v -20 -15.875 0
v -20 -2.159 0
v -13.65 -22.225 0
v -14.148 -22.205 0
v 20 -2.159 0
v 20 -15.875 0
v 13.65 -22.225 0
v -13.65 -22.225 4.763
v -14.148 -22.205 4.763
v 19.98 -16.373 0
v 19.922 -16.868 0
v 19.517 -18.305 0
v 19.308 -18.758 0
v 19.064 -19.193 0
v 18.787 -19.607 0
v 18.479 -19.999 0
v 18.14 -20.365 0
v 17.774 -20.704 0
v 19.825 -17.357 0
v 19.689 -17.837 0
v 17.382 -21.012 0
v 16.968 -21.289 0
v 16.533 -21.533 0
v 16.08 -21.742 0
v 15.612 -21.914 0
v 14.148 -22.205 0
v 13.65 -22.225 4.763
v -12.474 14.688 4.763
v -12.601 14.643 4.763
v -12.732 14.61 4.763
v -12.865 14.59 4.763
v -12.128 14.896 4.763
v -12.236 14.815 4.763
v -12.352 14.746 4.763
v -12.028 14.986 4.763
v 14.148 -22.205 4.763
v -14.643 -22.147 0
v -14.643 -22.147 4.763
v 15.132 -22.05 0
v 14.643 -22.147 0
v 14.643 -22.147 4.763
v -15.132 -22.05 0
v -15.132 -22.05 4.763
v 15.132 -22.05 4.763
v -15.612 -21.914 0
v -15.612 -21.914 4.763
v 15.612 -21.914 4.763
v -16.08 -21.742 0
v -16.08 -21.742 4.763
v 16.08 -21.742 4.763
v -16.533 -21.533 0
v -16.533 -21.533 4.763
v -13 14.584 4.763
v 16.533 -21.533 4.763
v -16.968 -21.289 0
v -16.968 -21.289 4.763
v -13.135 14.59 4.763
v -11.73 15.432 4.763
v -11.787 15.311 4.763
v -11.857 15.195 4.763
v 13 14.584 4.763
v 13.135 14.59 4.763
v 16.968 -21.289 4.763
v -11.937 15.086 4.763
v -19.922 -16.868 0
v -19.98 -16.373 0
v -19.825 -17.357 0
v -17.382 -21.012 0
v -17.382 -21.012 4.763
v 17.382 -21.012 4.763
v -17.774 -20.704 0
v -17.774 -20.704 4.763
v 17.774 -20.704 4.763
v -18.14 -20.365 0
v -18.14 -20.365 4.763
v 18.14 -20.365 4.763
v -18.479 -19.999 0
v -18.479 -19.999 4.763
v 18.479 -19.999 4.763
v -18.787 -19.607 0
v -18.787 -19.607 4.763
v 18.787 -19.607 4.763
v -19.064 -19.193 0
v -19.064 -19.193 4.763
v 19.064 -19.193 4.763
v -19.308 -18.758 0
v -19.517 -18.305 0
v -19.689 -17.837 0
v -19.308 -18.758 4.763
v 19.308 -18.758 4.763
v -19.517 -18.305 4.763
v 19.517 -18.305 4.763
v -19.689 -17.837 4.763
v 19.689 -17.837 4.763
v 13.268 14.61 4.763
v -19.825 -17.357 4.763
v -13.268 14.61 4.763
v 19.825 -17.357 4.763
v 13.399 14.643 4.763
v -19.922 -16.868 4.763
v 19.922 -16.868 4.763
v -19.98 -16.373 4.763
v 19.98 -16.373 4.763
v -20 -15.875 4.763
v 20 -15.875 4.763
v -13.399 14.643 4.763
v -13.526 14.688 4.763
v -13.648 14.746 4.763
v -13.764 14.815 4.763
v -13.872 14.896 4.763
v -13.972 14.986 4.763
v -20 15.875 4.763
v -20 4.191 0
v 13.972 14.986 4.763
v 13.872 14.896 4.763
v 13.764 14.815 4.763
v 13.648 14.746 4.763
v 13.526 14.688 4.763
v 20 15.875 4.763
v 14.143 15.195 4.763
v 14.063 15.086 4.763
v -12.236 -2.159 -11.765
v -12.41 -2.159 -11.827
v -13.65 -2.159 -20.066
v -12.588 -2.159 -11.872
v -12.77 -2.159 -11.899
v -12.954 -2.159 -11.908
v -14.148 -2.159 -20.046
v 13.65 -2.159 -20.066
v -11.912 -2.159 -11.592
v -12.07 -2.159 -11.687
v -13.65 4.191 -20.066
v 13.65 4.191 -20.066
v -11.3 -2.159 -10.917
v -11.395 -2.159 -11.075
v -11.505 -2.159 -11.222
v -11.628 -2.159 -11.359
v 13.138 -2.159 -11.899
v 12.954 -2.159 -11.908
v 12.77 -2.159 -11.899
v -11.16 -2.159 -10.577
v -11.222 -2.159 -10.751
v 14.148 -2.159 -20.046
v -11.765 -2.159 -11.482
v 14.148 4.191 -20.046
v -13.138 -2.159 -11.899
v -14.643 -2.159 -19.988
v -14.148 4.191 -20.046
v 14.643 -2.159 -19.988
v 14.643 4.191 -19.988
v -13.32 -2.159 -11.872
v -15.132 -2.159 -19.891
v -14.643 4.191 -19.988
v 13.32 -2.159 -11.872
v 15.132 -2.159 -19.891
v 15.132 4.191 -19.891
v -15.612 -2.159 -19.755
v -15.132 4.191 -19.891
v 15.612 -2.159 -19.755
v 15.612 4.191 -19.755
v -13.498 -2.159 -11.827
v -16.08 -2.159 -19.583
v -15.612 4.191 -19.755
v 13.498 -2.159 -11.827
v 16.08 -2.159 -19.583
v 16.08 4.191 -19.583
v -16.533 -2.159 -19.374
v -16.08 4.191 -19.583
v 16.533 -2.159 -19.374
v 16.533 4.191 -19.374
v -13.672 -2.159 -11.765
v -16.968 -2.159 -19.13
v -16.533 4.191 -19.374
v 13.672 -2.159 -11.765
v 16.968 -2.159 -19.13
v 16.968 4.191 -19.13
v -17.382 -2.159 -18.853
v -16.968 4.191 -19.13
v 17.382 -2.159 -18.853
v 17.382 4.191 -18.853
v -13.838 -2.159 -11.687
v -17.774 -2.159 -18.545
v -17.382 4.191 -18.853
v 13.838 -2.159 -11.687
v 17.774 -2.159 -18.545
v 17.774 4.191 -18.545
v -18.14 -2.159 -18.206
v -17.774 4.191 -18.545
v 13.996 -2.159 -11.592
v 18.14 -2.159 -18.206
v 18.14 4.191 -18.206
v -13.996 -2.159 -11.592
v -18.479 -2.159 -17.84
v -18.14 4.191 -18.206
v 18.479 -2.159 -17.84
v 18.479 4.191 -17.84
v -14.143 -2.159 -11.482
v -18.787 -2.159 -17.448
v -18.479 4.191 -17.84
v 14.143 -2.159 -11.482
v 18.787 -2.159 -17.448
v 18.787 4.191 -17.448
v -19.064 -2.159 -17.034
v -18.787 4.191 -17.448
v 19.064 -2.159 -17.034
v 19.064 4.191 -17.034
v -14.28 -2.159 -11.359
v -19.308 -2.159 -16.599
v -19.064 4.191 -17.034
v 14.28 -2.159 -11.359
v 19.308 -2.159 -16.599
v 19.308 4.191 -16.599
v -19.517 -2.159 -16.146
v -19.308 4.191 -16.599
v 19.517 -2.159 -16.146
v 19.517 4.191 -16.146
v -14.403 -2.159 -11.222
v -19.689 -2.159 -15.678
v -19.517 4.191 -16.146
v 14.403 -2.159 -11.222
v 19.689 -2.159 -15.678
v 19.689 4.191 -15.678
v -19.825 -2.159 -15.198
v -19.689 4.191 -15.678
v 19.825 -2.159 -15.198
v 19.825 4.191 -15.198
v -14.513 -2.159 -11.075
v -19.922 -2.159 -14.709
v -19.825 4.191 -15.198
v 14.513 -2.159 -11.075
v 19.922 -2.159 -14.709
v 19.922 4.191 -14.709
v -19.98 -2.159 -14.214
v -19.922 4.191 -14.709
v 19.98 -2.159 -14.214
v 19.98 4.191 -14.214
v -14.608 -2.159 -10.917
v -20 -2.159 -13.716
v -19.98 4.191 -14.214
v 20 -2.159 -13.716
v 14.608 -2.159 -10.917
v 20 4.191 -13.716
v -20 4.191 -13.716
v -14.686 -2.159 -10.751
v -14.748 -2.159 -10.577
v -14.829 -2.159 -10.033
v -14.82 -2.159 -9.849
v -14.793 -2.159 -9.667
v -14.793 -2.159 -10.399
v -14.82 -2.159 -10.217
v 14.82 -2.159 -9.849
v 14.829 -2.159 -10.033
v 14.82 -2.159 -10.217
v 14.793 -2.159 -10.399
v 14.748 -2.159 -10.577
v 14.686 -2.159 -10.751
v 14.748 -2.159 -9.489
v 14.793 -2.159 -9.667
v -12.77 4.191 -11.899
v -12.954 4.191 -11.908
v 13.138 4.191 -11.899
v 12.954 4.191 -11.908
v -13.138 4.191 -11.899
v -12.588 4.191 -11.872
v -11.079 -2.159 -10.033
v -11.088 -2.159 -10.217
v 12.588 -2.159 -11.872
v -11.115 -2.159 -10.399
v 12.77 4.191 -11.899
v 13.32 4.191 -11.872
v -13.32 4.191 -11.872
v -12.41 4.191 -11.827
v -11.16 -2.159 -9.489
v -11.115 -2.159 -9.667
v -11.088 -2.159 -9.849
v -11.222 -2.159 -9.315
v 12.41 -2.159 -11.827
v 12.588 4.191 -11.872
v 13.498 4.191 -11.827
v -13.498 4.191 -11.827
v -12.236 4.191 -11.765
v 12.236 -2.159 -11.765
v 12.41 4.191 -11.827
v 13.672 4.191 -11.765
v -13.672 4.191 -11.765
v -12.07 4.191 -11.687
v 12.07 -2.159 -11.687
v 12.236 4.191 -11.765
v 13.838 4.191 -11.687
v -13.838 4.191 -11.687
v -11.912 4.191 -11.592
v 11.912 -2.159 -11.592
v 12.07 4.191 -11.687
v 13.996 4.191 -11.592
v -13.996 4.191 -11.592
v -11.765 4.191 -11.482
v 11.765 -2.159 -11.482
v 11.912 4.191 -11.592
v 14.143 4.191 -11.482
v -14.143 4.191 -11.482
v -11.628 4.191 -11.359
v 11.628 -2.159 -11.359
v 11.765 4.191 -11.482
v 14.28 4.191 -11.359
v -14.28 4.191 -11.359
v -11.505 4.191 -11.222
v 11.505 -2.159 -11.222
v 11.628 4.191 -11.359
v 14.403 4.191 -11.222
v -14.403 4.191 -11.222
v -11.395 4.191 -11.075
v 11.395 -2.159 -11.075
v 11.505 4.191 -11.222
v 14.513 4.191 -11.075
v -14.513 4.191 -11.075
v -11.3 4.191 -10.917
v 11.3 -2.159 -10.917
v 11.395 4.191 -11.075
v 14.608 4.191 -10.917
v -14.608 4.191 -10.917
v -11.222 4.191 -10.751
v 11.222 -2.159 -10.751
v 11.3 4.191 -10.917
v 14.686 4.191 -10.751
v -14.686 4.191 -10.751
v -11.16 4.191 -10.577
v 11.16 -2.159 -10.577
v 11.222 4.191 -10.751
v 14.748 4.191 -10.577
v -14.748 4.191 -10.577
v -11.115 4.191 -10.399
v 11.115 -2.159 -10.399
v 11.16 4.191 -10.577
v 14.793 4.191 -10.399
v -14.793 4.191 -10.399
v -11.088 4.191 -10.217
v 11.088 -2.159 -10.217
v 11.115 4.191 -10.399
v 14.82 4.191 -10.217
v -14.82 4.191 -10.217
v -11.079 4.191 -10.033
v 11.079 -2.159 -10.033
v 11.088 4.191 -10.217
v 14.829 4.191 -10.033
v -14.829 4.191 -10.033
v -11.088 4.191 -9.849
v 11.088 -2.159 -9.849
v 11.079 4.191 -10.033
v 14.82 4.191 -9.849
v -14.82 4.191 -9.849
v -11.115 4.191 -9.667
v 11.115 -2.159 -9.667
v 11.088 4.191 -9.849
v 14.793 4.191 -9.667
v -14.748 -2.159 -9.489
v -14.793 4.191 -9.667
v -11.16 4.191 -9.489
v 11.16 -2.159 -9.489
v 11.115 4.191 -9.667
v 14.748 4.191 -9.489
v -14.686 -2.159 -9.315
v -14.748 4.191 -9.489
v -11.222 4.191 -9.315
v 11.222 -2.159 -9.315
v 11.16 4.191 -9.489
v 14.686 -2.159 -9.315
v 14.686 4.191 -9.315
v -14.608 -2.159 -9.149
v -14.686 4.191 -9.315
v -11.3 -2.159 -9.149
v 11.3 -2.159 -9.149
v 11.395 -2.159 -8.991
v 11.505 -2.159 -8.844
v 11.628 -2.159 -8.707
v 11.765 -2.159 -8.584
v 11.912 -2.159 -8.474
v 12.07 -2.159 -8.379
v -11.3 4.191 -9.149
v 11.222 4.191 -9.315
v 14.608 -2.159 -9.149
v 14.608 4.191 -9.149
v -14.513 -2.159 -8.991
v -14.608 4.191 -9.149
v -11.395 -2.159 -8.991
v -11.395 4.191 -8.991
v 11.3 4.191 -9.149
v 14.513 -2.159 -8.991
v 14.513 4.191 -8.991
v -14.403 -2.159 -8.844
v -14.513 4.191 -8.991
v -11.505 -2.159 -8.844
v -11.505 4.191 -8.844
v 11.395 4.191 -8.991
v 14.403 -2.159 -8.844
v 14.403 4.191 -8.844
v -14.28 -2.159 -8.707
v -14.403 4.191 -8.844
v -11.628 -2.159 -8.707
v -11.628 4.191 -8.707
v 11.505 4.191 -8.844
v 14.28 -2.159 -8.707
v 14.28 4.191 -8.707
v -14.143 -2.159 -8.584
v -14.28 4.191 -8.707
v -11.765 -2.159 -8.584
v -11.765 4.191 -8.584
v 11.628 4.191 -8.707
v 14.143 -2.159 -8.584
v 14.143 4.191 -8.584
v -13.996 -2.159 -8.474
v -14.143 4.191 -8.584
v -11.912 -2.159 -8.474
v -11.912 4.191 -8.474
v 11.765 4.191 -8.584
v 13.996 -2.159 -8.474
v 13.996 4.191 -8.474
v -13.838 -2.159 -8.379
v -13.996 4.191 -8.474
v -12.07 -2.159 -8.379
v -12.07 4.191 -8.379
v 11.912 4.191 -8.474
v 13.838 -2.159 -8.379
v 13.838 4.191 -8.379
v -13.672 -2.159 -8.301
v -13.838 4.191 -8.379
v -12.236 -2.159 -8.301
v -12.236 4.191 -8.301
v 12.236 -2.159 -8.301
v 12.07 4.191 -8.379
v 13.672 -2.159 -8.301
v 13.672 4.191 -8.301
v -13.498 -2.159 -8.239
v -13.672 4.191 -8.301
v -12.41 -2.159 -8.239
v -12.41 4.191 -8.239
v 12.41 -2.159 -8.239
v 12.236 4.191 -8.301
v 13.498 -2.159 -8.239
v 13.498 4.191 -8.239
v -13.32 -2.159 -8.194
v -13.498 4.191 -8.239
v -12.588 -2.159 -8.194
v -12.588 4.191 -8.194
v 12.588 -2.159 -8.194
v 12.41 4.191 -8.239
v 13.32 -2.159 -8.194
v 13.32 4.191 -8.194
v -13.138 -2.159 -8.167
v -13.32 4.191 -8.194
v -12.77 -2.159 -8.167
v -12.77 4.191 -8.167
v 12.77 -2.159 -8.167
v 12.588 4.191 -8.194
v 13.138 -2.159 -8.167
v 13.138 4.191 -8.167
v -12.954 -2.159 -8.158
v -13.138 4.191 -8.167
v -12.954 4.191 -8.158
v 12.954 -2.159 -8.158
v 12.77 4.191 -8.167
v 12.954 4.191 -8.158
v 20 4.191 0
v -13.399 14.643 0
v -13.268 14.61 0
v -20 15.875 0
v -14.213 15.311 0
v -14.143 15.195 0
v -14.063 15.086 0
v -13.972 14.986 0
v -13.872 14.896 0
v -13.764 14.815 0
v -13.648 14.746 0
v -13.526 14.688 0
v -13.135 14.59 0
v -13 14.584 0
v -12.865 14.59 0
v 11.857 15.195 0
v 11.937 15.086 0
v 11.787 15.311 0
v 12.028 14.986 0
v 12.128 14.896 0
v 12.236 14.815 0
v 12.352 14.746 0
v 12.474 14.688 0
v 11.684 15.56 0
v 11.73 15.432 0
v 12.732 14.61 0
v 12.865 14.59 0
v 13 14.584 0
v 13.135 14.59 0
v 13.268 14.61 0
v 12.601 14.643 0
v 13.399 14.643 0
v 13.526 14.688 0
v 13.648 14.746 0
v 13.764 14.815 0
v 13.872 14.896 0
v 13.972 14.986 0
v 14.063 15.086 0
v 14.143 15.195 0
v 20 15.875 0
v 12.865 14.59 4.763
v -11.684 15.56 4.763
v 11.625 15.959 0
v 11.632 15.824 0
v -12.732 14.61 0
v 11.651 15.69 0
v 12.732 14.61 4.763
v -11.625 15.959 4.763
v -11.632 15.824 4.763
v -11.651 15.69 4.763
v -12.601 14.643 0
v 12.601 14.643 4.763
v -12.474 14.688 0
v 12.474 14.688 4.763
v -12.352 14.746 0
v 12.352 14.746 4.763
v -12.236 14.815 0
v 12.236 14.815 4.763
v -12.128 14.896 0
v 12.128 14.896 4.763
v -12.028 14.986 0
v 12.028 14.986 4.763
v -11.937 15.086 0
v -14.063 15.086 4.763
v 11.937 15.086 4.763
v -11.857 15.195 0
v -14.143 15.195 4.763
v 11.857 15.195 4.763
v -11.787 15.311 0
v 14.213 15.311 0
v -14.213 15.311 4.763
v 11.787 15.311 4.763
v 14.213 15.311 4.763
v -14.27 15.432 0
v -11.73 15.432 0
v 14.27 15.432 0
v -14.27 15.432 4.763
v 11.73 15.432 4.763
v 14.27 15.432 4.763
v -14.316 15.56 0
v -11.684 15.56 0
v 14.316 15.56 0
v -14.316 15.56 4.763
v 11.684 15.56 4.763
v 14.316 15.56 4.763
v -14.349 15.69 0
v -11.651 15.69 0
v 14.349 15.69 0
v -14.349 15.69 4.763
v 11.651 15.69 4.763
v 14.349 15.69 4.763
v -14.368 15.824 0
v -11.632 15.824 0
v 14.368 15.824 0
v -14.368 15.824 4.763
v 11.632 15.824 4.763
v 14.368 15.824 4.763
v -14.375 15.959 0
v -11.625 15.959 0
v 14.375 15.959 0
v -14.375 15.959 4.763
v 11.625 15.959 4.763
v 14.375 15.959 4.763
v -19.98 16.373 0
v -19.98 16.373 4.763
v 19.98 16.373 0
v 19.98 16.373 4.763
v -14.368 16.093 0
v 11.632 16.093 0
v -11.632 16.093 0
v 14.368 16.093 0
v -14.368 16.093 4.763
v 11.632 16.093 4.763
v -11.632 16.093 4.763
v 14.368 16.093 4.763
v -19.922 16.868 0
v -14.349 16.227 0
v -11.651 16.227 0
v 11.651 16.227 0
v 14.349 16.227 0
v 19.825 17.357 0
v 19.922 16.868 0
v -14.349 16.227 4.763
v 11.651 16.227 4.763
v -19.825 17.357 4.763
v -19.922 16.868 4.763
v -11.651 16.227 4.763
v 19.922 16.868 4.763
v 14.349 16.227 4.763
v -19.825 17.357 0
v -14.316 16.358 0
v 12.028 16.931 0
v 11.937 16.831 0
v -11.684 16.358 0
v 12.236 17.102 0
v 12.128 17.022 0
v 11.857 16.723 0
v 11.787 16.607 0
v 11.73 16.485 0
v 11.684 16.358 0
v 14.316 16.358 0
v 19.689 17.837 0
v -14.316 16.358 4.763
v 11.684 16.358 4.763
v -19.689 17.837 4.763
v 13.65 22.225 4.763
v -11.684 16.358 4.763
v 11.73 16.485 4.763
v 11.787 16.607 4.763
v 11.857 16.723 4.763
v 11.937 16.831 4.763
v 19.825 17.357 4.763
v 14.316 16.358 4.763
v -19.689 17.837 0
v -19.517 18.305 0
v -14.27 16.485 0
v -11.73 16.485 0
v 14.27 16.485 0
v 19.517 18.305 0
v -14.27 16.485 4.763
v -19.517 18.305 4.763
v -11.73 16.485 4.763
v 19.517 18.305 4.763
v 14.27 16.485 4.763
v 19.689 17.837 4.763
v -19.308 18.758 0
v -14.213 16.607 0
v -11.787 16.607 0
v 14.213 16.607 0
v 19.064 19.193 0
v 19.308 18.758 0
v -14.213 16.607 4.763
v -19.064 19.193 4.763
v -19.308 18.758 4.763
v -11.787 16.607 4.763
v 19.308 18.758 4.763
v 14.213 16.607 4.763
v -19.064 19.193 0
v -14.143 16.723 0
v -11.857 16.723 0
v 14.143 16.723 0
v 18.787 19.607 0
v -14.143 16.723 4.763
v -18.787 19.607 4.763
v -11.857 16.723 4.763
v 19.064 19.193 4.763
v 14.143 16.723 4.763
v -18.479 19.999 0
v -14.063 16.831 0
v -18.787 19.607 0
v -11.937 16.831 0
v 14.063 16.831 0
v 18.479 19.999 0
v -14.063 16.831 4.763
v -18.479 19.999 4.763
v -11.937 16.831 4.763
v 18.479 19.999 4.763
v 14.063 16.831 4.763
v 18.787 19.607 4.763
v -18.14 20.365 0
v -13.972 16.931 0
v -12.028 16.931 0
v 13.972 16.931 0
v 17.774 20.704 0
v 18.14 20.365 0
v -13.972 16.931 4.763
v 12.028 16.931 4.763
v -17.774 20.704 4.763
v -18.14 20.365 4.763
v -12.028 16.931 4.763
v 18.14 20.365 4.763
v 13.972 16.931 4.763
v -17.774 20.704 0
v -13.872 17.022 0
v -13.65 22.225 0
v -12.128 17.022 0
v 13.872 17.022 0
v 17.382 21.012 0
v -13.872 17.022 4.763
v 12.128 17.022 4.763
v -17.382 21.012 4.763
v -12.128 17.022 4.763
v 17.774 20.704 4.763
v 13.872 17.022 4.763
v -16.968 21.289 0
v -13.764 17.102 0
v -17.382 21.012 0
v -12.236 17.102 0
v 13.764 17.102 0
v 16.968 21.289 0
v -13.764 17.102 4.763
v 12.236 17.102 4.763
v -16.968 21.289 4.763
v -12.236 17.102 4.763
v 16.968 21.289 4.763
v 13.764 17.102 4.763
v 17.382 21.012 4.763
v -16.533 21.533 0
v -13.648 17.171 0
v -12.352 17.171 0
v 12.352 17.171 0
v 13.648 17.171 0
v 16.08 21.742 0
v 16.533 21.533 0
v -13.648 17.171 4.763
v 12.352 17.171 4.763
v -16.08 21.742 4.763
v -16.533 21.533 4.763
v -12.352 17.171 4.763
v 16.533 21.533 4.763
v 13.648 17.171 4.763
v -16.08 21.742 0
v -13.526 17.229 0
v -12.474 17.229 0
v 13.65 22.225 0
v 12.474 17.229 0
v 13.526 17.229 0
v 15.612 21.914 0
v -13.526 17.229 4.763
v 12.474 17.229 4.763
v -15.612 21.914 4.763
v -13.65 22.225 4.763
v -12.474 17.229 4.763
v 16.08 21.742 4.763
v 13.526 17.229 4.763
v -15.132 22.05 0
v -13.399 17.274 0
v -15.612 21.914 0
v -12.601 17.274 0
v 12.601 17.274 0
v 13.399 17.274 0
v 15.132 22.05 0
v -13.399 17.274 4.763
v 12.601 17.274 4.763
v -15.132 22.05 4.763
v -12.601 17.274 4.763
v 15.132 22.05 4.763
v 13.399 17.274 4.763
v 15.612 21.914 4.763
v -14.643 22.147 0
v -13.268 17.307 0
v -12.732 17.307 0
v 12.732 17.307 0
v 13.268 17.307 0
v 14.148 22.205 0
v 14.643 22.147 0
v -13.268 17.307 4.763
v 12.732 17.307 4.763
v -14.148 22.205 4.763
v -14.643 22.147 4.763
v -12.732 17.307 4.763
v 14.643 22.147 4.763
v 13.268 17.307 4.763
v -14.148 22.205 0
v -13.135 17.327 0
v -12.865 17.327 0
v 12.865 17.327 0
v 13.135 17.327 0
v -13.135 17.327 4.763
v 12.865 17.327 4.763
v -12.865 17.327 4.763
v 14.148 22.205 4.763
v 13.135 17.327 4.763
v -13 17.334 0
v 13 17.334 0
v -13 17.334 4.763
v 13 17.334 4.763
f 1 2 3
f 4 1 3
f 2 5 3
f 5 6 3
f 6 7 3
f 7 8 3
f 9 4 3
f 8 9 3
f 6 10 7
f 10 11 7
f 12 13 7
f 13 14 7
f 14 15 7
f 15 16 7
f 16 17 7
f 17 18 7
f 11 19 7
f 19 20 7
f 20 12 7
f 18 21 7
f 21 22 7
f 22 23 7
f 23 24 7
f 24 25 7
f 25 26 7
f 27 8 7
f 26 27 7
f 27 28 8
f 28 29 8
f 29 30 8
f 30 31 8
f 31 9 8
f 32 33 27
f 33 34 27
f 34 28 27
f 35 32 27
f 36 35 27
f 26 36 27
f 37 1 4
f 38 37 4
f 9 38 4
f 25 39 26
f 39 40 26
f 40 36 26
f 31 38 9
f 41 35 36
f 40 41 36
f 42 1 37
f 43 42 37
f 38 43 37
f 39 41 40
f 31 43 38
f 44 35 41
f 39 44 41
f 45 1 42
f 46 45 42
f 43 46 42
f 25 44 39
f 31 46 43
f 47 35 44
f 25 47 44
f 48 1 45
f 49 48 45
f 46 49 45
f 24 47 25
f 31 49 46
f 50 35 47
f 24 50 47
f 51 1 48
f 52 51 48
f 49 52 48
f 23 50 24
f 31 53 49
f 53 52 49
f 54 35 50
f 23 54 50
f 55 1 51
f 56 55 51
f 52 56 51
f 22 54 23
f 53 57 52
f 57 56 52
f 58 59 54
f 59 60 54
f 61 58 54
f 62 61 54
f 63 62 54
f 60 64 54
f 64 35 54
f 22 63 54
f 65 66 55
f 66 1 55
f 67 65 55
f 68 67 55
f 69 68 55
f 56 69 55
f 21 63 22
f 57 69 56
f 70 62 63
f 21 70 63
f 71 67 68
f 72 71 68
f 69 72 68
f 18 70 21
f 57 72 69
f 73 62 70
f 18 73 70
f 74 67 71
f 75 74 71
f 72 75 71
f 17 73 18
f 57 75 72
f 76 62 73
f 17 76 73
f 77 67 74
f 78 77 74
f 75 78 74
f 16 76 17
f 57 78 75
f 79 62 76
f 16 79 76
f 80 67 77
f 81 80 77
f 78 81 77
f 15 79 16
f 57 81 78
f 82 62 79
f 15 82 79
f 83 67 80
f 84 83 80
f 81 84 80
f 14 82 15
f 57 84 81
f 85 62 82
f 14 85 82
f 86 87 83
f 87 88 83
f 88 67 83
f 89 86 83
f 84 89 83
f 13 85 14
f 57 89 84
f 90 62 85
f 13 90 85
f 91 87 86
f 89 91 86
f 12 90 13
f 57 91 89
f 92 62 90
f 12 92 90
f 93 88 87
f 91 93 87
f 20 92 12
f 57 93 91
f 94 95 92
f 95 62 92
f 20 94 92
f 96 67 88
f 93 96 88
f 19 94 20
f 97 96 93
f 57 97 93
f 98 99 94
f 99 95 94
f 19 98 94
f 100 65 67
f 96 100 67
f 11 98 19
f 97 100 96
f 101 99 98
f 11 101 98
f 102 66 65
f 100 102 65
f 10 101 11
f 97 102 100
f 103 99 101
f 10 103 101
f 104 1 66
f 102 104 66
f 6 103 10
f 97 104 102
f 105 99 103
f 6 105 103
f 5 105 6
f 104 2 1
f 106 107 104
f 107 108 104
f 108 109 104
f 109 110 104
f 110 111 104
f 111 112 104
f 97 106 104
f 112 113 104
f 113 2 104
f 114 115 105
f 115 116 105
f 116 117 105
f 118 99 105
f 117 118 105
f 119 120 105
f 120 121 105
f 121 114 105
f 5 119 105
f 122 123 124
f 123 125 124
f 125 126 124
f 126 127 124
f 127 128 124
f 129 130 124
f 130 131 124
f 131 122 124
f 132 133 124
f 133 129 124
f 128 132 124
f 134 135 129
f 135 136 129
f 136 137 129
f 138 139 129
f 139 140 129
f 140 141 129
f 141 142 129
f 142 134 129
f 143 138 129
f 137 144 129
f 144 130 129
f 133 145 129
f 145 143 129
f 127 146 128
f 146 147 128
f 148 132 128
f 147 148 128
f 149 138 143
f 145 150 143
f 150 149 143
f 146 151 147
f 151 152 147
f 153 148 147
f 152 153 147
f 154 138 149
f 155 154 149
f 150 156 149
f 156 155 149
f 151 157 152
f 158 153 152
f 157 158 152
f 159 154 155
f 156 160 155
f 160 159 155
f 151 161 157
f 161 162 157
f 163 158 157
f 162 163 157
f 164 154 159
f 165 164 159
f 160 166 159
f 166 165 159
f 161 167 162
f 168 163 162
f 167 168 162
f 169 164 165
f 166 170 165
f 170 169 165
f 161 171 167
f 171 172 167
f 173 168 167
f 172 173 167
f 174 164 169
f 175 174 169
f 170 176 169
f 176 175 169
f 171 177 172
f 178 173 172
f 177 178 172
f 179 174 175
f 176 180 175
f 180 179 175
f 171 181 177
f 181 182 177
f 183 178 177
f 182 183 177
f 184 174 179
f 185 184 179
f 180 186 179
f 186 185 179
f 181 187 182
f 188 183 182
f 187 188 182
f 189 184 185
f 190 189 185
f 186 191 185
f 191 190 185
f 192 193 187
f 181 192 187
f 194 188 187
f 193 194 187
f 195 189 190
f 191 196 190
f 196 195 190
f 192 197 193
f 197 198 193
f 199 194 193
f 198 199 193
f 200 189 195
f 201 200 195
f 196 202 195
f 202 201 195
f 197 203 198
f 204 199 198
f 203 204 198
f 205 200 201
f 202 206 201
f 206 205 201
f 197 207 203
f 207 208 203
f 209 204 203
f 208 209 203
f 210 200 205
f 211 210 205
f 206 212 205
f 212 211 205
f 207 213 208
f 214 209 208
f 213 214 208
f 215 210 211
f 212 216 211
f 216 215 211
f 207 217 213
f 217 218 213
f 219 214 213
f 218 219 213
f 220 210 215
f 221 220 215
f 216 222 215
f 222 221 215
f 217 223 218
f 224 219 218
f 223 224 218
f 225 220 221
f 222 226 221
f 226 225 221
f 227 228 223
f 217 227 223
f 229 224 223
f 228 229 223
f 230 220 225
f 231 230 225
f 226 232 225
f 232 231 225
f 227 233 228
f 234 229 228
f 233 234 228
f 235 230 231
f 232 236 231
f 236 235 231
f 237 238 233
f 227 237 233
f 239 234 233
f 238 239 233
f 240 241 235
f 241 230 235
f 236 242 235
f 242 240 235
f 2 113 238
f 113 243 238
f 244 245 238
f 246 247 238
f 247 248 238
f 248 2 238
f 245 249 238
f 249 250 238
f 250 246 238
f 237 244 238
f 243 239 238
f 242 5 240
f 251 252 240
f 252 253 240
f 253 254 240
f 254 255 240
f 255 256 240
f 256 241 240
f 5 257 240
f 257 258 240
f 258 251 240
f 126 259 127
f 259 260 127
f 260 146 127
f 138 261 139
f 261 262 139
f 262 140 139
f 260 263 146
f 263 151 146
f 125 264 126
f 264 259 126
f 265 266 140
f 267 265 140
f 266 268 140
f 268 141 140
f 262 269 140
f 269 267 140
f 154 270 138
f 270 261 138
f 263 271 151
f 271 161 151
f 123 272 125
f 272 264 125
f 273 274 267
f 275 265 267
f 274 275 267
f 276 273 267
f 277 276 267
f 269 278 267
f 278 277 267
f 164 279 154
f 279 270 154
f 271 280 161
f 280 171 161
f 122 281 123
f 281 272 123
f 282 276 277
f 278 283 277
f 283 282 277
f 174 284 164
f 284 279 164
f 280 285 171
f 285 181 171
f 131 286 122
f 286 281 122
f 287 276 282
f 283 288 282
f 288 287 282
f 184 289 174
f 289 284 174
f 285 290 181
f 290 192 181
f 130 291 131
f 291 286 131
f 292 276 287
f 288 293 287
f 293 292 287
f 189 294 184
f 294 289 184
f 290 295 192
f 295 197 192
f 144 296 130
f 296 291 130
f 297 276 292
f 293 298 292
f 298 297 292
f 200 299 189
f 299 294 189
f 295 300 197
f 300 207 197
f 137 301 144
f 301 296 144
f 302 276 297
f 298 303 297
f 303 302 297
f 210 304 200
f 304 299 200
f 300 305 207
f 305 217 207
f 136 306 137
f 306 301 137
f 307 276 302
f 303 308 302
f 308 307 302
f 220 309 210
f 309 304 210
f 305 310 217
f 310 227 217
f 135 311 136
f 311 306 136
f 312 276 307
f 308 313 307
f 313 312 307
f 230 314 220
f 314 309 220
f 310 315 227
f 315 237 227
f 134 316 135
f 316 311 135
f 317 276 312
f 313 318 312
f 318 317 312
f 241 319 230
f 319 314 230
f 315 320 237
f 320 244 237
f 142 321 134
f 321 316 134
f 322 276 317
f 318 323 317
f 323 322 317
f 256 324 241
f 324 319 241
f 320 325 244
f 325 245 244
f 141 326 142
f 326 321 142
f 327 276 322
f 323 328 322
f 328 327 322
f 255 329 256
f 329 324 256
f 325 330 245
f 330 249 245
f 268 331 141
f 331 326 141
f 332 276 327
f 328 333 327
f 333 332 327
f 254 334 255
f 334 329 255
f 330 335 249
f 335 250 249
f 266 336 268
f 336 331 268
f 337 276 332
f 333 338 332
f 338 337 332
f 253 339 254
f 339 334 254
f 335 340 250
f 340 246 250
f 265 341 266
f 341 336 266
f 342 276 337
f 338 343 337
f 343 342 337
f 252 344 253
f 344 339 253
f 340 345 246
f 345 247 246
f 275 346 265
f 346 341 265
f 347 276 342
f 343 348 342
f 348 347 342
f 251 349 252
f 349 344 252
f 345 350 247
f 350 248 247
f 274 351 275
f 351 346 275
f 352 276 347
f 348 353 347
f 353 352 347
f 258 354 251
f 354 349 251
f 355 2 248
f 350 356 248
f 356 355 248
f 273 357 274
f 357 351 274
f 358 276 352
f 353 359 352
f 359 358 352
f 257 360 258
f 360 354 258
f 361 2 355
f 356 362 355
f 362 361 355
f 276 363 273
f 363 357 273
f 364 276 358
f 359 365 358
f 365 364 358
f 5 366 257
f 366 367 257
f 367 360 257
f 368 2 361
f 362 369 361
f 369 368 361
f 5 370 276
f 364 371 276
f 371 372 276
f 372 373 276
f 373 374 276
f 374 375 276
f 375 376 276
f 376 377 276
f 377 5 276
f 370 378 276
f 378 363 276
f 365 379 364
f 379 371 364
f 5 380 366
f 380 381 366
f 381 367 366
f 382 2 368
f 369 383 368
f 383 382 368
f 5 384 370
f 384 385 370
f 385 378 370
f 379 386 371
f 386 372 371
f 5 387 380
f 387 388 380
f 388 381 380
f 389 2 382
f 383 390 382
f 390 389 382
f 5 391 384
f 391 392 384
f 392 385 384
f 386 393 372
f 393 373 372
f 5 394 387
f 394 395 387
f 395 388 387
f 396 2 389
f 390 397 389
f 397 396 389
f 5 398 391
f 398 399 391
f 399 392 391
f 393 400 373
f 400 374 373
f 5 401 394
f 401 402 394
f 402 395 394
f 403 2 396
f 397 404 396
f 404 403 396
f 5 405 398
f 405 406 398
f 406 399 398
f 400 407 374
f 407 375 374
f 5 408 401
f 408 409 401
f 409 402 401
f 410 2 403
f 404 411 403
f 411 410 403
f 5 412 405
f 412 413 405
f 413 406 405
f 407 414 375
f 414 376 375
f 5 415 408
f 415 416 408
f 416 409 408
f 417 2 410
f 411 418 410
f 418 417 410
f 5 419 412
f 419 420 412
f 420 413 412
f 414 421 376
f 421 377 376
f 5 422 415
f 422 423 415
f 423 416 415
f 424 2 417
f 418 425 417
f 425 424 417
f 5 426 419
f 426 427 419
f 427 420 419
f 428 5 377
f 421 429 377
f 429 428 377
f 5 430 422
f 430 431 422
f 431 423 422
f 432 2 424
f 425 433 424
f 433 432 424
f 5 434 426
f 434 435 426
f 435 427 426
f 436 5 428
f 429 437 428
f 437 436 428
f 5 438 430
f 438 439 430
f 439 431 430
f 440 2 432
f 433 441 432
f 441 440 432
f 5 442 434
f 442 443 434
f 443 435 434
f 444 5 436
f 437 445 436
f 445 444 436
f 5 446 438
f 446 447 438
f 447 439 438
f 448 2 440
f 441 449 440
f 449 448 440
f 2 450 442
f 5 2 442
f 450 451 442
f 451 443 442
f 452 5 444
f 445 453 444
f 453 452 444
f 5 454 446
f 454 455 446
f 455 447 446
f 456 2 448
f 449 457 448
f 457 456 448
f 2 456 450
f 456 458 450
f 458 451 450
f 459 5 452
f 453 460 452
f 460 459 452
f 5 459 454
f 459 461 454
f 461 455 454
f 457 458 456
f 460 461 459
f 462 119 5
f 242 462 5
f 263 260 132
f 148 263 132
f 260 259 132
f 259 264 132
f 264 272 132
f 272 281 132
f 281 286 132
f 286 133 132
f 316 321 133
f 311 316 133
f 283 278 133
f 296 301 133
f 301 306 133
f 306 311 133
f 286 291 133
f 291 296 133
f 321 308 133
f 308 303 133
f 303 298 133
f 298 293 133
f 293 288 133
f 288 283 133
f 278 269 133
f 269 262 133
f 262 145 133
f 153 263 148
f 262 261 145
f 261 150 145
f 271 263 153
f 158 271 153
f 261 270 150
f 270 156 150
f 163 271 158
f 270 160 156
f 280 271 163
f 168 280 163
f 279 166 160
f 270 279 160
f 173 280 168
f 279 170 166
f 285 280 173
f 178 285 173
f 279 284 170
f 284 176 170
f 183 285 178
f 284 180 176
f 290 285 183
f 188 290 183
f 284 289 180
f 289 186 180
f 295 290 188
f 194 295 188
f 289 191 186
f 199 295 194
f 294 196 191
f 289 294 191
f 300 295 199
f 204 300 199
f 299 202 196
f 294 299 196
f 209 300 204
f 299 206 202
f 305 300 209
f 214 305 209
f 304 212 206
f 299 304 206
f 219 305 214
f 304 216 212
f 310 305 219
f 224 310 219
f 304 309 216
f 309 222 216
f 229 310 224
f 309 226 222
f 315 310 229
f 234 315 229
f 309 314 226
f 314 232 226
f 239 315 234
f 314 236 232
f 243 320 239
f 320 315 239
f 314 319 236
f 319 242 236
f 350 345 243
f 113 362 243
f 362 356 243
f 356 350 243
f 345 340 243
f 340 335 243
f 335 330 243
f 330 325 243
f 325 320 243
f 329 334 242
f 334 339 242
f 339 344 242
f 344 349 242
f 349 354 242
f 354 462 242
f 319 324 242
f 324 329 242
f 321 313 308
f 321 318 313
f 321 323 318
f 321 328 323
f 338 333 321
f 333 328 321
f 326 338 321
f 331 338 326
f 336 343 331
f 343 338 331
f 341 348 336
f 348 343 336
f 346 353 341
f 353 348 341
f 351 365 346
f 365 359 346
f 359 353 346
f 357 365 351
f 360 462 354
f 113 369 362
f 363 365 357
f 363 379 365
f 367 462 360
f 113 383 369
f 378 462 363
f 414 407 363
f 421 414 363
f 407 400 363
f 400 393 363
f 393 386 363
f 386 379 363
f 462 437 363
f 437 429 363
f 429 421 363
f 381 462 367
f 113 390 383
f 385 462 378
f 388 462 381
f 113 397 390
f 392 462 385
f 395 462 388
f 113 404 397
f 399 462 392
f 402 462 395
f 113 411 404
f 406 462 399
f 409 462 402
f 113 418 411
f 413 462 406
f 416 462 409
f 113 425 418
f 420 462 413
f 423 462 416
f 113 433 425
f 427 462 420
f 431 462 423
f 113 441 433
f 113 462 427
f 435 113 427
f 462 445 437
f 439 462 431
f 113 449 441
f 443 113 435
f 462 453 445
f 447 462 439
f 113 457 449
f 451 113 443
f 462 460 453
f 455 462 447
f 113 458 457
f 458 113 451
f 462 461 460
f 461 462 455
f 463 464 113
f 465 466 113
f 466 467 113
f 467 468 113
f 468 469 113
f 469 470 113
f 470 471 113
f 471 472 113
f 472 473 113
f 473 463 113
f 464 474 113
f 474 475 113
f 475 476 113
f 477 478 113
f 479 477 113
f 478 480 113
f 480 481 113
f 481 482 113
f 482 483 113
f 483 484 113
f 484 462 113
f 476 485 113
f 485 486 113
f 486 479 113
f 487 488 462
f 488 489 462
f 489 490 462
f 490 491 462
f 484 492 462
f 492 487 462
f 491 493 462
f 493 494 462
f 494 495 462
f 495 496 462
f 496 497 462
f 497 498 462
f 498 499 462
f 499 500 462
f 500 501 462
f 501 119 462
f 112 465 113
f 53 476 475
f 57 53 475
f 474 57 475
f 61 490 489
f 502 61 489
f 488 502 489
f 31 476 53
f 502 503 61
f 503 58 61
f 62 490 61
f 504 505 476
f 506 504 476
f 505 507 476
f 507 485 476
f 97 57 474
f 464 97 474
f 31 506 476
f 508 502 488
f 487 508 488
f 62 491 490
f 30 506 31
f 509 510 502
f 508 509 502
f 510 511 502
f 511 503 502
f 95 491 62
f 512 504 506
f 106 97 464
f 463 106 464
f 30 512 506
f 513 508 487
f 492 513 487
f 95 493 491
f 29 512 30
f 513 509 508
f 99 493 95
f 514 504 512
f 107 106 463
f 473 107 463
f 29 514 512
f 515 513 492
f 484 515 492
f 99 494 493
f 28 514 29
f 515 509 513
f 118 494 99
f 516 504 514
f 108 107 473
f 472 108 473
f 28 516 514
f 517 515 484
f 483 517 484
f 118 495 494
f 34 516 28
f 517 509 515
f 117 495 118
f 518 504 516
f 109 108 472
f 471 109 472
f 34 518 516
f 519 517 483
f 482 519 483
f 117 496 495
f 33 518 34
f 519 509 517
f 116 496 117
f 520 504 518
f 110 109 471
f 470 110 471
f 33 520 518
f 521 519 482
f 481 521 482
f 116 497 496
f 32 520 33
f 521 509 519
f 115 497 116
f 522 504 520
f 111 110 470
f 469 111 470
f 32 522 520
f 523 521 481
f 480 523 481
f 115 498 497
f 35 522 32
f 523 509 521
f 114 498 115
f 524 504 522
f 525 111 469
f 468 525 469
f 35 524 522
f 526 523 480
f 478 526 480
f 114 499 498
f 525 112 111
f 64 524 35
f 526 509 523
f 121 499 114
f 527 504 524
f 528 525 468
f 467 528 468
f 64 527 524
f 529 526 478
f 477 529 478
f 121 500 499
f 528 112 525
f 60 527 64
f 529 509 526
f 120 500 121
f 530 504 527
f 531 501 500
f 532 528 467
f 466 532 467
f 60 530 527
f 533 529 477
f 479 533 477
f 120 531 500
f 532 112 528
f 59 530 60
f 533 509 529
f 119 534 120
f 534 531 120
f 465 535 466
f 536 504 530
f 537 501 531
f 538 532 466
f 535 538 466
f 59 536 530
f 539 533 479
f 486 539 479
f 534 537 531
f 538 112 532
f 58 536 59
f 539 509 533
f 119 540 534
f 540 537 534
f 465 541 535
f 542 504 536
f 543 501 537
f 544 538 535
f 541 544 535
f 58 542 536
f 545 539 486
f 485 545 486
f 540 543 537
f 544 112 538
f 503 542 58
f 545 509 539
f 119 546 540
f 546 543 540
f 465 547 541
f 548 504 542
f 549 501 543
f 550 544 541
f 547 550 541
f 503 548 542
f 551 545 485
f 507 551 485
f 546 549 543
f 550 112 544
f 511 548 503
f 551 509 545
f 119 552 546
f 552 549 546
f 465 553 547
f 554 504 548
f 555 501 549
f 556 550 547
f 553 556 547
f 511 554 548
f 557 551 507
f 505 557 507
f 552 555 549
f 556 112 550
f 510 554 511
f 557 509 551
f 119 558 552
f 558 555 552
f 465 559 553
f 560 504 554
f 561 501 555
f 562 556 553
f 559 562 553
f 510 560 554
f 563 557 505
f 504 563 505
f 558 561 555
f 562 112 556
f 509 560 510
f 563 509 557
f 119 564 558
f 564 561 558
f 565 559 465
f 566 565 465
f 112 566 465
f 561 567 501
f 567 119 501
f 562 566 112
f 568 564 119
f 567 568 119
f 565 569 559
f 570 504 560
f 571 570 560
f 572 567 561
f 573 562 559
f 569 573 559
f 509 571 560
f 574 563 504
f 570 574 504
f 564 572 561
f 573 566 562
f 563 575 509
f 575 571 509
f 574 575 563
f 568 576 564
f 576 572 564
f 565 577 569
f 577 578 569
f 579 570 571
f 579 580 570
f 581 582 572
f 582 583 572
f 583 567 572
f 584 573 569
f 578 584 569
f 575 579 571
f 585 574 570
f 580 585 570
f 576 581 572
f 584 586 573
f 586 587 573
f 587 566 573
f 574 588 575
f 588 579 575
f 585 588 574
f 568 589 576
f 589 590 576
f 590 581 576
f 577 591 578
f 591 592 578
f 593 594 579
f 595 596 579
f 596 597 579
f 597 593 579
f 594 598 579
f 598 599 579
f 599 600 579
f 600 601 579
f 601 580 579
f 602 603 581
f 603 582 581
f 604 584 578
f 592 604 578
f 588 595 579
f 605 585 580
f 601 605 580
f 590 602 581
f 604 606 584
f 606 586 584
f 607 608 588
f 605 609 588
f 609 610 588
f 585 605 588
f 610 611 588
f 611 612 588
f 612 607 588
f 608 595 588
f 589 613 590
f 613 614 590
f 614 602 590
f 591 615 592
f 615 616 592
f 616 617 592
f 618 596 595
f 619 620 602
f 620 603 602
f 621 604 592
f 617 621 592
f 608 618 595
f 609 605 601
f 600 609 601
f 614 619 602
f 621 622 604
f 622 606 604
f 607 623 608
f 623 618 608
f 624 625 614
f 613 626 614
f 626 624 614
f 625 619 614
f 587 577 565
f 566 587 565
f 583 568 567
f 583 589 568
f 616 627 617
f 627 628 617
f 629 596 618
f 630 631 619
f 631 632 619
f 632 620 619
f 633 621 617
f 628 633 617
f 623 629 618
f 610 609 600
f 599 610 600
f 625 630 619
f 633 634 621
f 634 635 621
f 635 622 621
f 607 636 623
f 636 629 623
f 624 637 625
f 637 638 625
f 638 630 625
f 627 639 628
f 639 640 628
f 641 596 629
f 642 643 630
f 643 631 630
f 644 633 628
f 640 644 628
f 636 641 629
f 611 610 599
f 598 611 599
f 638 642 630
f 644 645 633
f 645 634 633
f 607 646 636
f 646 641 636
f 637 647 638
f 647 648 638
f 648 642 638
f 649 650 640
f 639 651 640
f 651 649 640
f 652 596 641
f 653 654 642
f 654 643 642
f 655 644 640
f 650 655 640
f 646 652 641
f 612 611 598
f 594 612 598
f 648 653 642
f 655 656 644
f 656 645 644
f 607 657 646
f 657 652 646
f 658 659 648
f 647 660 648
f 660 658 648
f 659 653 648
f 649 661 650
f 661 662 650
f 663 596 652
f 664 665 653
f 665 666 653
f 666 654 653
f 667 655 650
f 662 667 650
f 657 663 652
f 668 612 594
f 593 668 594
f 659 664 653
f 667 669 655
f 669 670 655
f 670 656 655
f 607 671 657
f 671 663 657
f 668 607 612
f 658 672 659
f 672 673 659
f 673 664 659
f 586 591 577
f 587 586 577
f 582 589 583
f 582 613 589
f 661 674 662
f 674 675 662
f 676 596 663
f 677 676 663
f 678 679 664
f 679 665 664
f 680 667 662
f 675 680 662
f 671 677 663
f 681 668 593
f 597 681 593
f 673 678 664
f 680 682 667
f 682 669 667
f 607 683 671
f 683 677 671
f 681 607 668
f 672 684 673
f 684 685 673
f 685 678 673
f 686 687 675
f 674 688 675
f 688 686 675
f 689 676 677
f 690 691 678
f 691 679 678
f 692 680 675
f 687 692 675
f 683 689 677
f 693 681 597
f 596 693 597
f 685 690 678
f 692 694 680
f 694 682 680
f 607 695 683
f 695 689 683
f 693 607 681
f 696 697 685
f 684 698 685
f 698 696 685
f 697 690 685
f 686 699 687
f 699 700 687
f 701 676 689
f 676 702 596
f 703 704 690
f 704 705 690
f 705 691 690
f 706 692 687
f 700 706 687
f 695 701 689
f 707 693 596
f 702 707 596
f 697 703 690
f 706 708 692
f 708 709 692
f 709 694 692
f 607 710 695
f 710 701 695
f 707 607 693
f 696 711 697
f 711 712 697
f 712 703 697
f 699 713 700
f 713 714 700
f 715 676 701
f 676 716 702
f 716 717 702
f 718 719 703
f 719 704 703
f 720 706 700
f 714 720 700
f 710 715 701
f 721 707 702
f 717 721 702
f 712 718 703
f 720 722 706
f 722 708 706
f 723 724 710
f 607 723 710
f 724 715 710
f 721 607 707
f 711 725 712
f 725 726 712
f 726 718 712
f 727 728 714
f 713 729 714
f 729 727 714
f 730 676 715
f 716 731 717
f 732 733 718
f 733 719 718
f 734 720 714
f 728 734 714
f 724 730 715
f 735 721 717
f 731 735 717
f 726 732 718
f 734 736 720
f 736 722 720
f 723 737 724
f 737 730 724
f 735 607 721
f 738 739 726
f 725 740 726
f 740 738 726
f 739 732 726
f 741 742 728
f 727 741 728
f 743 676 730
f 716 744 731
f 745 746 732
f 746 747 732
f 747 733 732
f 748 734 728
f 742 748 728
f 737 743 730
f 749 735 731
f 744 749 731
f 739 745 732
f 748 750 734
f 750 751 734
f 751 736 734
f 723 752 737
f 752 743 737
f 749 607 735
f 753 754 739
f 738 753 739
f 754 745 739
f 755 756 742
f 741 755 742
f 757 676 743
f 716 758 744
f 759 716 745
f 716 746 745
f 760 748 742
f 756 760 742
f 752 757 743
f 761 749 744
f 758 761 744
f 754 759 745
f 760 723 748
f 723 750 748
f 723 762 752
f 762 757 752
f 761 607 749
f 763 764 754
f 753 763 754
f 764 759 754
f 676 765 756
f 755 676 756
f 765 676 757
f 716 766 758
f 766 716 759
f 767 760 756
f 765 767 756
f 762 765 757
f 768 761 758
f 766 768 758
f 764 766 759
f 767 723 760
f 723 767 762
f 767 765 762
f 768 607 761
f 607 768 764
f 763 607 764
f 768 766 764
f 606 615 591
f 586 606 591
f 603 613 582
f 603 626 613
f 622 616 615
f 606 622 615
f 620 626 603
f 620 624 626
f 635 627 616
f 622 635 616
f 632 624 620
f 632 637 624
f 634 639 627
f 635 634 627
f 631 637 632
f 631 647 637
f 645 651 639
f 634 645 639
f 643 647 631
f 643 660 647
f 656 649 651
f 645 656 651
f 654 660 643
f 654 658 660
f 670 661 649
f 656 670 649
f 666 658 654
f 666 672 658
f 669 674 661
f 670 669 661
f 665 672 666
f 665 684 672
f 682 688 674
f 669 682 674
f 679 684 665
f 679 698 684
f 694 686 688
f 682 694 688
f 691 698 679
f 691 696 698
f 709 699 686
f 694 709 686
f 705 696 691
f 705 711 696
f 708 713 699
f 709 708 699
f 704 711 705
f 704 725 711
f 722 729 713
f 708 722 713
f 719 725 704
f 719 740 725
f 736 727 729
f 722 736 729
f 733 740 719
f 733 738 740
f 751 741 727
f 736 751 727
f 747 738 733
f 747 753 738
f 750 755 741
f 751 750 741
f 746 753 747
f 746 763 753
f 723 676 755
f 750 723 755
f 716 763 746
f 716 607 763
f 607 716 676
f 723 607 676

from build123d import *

# Parameters (mm, degrees)
SKETCH1_W           = 40
SKETCH1_H           = 44.45
SKETCH1_R           = 1.375
BOSS_EXTRUDE1_DEPTH = 4.7625
SKETCH2_W           = 40
SKETCH2_H           = 6.35
BOSS_EXTRUDE2_DEPTH = 20.066
SKETCH3_R           = 1.875
CUT_EXTRUDE1_DEPTH  = 27.416
FILLET1_R           = 6.35


with BuildPart() as part:
    # Sketch1 → Boss-Extrude1 (new body)
    with BuildSketch(Plane.XY):
        Rectangle(SKETCH1_W, SKETCH1_H)
        with Locations((-13, 15.958682008)):
            Circle(SKETCH1_R, mode=Mode.SUBTRACT)
        with Locations((13, 15.958682008)):
            Circle(SKETCH1_R, mode=Mode.SUBTRACT)
    extrude(amount=BOSS_EXTRUDE1_DEPTH)

    # Sketch2 → Boss-Extrude2 (add)
    with BuildSketch(Plane(origin=(0, 0, 0), x_dir=(-1, 0, 0), z_dir=(0, 0, -1))):
        with Locations((0, 1.016)):
            Rectangle(SKETCH2_W, SKETCH2_H)
    extrude(amount=BOSS_EXTRUDE2_DEPTH)

    # Sketch3 → Cut-Extrude1 (cut, through all)
    with BuildSketch(Plane(origin=(0, 4.191, 0), x_dir=(1, 0, 0), z_dir=(0, 1, 0))):
        with Locations((12.954, 10.033)):
            Circle(SKETCH3_R)
        with Locations((-12.954, 10.033)):
            Circle(SKETCH3_R)
    extrude(amount=-CUT_EXTRUDE1_DEPTH, mode=Mode.SUBTRACT)

    # Fillet1
    fillet1_edges = [part.edges().sort_by_distance(p)[0] for p in [
        (20, 1.016, -20.066),
        (-20, 1.016, -20.066),
        (20, -22.225, 2.38125),
        (-20, -22.225, 2.38125),
        (-20, 22.225, 2.38125),
        (20, 22.225, 2.38125),
    ]]
    fillet(fillet1_edges, radius=FILLET1_R)


solid = part.part
